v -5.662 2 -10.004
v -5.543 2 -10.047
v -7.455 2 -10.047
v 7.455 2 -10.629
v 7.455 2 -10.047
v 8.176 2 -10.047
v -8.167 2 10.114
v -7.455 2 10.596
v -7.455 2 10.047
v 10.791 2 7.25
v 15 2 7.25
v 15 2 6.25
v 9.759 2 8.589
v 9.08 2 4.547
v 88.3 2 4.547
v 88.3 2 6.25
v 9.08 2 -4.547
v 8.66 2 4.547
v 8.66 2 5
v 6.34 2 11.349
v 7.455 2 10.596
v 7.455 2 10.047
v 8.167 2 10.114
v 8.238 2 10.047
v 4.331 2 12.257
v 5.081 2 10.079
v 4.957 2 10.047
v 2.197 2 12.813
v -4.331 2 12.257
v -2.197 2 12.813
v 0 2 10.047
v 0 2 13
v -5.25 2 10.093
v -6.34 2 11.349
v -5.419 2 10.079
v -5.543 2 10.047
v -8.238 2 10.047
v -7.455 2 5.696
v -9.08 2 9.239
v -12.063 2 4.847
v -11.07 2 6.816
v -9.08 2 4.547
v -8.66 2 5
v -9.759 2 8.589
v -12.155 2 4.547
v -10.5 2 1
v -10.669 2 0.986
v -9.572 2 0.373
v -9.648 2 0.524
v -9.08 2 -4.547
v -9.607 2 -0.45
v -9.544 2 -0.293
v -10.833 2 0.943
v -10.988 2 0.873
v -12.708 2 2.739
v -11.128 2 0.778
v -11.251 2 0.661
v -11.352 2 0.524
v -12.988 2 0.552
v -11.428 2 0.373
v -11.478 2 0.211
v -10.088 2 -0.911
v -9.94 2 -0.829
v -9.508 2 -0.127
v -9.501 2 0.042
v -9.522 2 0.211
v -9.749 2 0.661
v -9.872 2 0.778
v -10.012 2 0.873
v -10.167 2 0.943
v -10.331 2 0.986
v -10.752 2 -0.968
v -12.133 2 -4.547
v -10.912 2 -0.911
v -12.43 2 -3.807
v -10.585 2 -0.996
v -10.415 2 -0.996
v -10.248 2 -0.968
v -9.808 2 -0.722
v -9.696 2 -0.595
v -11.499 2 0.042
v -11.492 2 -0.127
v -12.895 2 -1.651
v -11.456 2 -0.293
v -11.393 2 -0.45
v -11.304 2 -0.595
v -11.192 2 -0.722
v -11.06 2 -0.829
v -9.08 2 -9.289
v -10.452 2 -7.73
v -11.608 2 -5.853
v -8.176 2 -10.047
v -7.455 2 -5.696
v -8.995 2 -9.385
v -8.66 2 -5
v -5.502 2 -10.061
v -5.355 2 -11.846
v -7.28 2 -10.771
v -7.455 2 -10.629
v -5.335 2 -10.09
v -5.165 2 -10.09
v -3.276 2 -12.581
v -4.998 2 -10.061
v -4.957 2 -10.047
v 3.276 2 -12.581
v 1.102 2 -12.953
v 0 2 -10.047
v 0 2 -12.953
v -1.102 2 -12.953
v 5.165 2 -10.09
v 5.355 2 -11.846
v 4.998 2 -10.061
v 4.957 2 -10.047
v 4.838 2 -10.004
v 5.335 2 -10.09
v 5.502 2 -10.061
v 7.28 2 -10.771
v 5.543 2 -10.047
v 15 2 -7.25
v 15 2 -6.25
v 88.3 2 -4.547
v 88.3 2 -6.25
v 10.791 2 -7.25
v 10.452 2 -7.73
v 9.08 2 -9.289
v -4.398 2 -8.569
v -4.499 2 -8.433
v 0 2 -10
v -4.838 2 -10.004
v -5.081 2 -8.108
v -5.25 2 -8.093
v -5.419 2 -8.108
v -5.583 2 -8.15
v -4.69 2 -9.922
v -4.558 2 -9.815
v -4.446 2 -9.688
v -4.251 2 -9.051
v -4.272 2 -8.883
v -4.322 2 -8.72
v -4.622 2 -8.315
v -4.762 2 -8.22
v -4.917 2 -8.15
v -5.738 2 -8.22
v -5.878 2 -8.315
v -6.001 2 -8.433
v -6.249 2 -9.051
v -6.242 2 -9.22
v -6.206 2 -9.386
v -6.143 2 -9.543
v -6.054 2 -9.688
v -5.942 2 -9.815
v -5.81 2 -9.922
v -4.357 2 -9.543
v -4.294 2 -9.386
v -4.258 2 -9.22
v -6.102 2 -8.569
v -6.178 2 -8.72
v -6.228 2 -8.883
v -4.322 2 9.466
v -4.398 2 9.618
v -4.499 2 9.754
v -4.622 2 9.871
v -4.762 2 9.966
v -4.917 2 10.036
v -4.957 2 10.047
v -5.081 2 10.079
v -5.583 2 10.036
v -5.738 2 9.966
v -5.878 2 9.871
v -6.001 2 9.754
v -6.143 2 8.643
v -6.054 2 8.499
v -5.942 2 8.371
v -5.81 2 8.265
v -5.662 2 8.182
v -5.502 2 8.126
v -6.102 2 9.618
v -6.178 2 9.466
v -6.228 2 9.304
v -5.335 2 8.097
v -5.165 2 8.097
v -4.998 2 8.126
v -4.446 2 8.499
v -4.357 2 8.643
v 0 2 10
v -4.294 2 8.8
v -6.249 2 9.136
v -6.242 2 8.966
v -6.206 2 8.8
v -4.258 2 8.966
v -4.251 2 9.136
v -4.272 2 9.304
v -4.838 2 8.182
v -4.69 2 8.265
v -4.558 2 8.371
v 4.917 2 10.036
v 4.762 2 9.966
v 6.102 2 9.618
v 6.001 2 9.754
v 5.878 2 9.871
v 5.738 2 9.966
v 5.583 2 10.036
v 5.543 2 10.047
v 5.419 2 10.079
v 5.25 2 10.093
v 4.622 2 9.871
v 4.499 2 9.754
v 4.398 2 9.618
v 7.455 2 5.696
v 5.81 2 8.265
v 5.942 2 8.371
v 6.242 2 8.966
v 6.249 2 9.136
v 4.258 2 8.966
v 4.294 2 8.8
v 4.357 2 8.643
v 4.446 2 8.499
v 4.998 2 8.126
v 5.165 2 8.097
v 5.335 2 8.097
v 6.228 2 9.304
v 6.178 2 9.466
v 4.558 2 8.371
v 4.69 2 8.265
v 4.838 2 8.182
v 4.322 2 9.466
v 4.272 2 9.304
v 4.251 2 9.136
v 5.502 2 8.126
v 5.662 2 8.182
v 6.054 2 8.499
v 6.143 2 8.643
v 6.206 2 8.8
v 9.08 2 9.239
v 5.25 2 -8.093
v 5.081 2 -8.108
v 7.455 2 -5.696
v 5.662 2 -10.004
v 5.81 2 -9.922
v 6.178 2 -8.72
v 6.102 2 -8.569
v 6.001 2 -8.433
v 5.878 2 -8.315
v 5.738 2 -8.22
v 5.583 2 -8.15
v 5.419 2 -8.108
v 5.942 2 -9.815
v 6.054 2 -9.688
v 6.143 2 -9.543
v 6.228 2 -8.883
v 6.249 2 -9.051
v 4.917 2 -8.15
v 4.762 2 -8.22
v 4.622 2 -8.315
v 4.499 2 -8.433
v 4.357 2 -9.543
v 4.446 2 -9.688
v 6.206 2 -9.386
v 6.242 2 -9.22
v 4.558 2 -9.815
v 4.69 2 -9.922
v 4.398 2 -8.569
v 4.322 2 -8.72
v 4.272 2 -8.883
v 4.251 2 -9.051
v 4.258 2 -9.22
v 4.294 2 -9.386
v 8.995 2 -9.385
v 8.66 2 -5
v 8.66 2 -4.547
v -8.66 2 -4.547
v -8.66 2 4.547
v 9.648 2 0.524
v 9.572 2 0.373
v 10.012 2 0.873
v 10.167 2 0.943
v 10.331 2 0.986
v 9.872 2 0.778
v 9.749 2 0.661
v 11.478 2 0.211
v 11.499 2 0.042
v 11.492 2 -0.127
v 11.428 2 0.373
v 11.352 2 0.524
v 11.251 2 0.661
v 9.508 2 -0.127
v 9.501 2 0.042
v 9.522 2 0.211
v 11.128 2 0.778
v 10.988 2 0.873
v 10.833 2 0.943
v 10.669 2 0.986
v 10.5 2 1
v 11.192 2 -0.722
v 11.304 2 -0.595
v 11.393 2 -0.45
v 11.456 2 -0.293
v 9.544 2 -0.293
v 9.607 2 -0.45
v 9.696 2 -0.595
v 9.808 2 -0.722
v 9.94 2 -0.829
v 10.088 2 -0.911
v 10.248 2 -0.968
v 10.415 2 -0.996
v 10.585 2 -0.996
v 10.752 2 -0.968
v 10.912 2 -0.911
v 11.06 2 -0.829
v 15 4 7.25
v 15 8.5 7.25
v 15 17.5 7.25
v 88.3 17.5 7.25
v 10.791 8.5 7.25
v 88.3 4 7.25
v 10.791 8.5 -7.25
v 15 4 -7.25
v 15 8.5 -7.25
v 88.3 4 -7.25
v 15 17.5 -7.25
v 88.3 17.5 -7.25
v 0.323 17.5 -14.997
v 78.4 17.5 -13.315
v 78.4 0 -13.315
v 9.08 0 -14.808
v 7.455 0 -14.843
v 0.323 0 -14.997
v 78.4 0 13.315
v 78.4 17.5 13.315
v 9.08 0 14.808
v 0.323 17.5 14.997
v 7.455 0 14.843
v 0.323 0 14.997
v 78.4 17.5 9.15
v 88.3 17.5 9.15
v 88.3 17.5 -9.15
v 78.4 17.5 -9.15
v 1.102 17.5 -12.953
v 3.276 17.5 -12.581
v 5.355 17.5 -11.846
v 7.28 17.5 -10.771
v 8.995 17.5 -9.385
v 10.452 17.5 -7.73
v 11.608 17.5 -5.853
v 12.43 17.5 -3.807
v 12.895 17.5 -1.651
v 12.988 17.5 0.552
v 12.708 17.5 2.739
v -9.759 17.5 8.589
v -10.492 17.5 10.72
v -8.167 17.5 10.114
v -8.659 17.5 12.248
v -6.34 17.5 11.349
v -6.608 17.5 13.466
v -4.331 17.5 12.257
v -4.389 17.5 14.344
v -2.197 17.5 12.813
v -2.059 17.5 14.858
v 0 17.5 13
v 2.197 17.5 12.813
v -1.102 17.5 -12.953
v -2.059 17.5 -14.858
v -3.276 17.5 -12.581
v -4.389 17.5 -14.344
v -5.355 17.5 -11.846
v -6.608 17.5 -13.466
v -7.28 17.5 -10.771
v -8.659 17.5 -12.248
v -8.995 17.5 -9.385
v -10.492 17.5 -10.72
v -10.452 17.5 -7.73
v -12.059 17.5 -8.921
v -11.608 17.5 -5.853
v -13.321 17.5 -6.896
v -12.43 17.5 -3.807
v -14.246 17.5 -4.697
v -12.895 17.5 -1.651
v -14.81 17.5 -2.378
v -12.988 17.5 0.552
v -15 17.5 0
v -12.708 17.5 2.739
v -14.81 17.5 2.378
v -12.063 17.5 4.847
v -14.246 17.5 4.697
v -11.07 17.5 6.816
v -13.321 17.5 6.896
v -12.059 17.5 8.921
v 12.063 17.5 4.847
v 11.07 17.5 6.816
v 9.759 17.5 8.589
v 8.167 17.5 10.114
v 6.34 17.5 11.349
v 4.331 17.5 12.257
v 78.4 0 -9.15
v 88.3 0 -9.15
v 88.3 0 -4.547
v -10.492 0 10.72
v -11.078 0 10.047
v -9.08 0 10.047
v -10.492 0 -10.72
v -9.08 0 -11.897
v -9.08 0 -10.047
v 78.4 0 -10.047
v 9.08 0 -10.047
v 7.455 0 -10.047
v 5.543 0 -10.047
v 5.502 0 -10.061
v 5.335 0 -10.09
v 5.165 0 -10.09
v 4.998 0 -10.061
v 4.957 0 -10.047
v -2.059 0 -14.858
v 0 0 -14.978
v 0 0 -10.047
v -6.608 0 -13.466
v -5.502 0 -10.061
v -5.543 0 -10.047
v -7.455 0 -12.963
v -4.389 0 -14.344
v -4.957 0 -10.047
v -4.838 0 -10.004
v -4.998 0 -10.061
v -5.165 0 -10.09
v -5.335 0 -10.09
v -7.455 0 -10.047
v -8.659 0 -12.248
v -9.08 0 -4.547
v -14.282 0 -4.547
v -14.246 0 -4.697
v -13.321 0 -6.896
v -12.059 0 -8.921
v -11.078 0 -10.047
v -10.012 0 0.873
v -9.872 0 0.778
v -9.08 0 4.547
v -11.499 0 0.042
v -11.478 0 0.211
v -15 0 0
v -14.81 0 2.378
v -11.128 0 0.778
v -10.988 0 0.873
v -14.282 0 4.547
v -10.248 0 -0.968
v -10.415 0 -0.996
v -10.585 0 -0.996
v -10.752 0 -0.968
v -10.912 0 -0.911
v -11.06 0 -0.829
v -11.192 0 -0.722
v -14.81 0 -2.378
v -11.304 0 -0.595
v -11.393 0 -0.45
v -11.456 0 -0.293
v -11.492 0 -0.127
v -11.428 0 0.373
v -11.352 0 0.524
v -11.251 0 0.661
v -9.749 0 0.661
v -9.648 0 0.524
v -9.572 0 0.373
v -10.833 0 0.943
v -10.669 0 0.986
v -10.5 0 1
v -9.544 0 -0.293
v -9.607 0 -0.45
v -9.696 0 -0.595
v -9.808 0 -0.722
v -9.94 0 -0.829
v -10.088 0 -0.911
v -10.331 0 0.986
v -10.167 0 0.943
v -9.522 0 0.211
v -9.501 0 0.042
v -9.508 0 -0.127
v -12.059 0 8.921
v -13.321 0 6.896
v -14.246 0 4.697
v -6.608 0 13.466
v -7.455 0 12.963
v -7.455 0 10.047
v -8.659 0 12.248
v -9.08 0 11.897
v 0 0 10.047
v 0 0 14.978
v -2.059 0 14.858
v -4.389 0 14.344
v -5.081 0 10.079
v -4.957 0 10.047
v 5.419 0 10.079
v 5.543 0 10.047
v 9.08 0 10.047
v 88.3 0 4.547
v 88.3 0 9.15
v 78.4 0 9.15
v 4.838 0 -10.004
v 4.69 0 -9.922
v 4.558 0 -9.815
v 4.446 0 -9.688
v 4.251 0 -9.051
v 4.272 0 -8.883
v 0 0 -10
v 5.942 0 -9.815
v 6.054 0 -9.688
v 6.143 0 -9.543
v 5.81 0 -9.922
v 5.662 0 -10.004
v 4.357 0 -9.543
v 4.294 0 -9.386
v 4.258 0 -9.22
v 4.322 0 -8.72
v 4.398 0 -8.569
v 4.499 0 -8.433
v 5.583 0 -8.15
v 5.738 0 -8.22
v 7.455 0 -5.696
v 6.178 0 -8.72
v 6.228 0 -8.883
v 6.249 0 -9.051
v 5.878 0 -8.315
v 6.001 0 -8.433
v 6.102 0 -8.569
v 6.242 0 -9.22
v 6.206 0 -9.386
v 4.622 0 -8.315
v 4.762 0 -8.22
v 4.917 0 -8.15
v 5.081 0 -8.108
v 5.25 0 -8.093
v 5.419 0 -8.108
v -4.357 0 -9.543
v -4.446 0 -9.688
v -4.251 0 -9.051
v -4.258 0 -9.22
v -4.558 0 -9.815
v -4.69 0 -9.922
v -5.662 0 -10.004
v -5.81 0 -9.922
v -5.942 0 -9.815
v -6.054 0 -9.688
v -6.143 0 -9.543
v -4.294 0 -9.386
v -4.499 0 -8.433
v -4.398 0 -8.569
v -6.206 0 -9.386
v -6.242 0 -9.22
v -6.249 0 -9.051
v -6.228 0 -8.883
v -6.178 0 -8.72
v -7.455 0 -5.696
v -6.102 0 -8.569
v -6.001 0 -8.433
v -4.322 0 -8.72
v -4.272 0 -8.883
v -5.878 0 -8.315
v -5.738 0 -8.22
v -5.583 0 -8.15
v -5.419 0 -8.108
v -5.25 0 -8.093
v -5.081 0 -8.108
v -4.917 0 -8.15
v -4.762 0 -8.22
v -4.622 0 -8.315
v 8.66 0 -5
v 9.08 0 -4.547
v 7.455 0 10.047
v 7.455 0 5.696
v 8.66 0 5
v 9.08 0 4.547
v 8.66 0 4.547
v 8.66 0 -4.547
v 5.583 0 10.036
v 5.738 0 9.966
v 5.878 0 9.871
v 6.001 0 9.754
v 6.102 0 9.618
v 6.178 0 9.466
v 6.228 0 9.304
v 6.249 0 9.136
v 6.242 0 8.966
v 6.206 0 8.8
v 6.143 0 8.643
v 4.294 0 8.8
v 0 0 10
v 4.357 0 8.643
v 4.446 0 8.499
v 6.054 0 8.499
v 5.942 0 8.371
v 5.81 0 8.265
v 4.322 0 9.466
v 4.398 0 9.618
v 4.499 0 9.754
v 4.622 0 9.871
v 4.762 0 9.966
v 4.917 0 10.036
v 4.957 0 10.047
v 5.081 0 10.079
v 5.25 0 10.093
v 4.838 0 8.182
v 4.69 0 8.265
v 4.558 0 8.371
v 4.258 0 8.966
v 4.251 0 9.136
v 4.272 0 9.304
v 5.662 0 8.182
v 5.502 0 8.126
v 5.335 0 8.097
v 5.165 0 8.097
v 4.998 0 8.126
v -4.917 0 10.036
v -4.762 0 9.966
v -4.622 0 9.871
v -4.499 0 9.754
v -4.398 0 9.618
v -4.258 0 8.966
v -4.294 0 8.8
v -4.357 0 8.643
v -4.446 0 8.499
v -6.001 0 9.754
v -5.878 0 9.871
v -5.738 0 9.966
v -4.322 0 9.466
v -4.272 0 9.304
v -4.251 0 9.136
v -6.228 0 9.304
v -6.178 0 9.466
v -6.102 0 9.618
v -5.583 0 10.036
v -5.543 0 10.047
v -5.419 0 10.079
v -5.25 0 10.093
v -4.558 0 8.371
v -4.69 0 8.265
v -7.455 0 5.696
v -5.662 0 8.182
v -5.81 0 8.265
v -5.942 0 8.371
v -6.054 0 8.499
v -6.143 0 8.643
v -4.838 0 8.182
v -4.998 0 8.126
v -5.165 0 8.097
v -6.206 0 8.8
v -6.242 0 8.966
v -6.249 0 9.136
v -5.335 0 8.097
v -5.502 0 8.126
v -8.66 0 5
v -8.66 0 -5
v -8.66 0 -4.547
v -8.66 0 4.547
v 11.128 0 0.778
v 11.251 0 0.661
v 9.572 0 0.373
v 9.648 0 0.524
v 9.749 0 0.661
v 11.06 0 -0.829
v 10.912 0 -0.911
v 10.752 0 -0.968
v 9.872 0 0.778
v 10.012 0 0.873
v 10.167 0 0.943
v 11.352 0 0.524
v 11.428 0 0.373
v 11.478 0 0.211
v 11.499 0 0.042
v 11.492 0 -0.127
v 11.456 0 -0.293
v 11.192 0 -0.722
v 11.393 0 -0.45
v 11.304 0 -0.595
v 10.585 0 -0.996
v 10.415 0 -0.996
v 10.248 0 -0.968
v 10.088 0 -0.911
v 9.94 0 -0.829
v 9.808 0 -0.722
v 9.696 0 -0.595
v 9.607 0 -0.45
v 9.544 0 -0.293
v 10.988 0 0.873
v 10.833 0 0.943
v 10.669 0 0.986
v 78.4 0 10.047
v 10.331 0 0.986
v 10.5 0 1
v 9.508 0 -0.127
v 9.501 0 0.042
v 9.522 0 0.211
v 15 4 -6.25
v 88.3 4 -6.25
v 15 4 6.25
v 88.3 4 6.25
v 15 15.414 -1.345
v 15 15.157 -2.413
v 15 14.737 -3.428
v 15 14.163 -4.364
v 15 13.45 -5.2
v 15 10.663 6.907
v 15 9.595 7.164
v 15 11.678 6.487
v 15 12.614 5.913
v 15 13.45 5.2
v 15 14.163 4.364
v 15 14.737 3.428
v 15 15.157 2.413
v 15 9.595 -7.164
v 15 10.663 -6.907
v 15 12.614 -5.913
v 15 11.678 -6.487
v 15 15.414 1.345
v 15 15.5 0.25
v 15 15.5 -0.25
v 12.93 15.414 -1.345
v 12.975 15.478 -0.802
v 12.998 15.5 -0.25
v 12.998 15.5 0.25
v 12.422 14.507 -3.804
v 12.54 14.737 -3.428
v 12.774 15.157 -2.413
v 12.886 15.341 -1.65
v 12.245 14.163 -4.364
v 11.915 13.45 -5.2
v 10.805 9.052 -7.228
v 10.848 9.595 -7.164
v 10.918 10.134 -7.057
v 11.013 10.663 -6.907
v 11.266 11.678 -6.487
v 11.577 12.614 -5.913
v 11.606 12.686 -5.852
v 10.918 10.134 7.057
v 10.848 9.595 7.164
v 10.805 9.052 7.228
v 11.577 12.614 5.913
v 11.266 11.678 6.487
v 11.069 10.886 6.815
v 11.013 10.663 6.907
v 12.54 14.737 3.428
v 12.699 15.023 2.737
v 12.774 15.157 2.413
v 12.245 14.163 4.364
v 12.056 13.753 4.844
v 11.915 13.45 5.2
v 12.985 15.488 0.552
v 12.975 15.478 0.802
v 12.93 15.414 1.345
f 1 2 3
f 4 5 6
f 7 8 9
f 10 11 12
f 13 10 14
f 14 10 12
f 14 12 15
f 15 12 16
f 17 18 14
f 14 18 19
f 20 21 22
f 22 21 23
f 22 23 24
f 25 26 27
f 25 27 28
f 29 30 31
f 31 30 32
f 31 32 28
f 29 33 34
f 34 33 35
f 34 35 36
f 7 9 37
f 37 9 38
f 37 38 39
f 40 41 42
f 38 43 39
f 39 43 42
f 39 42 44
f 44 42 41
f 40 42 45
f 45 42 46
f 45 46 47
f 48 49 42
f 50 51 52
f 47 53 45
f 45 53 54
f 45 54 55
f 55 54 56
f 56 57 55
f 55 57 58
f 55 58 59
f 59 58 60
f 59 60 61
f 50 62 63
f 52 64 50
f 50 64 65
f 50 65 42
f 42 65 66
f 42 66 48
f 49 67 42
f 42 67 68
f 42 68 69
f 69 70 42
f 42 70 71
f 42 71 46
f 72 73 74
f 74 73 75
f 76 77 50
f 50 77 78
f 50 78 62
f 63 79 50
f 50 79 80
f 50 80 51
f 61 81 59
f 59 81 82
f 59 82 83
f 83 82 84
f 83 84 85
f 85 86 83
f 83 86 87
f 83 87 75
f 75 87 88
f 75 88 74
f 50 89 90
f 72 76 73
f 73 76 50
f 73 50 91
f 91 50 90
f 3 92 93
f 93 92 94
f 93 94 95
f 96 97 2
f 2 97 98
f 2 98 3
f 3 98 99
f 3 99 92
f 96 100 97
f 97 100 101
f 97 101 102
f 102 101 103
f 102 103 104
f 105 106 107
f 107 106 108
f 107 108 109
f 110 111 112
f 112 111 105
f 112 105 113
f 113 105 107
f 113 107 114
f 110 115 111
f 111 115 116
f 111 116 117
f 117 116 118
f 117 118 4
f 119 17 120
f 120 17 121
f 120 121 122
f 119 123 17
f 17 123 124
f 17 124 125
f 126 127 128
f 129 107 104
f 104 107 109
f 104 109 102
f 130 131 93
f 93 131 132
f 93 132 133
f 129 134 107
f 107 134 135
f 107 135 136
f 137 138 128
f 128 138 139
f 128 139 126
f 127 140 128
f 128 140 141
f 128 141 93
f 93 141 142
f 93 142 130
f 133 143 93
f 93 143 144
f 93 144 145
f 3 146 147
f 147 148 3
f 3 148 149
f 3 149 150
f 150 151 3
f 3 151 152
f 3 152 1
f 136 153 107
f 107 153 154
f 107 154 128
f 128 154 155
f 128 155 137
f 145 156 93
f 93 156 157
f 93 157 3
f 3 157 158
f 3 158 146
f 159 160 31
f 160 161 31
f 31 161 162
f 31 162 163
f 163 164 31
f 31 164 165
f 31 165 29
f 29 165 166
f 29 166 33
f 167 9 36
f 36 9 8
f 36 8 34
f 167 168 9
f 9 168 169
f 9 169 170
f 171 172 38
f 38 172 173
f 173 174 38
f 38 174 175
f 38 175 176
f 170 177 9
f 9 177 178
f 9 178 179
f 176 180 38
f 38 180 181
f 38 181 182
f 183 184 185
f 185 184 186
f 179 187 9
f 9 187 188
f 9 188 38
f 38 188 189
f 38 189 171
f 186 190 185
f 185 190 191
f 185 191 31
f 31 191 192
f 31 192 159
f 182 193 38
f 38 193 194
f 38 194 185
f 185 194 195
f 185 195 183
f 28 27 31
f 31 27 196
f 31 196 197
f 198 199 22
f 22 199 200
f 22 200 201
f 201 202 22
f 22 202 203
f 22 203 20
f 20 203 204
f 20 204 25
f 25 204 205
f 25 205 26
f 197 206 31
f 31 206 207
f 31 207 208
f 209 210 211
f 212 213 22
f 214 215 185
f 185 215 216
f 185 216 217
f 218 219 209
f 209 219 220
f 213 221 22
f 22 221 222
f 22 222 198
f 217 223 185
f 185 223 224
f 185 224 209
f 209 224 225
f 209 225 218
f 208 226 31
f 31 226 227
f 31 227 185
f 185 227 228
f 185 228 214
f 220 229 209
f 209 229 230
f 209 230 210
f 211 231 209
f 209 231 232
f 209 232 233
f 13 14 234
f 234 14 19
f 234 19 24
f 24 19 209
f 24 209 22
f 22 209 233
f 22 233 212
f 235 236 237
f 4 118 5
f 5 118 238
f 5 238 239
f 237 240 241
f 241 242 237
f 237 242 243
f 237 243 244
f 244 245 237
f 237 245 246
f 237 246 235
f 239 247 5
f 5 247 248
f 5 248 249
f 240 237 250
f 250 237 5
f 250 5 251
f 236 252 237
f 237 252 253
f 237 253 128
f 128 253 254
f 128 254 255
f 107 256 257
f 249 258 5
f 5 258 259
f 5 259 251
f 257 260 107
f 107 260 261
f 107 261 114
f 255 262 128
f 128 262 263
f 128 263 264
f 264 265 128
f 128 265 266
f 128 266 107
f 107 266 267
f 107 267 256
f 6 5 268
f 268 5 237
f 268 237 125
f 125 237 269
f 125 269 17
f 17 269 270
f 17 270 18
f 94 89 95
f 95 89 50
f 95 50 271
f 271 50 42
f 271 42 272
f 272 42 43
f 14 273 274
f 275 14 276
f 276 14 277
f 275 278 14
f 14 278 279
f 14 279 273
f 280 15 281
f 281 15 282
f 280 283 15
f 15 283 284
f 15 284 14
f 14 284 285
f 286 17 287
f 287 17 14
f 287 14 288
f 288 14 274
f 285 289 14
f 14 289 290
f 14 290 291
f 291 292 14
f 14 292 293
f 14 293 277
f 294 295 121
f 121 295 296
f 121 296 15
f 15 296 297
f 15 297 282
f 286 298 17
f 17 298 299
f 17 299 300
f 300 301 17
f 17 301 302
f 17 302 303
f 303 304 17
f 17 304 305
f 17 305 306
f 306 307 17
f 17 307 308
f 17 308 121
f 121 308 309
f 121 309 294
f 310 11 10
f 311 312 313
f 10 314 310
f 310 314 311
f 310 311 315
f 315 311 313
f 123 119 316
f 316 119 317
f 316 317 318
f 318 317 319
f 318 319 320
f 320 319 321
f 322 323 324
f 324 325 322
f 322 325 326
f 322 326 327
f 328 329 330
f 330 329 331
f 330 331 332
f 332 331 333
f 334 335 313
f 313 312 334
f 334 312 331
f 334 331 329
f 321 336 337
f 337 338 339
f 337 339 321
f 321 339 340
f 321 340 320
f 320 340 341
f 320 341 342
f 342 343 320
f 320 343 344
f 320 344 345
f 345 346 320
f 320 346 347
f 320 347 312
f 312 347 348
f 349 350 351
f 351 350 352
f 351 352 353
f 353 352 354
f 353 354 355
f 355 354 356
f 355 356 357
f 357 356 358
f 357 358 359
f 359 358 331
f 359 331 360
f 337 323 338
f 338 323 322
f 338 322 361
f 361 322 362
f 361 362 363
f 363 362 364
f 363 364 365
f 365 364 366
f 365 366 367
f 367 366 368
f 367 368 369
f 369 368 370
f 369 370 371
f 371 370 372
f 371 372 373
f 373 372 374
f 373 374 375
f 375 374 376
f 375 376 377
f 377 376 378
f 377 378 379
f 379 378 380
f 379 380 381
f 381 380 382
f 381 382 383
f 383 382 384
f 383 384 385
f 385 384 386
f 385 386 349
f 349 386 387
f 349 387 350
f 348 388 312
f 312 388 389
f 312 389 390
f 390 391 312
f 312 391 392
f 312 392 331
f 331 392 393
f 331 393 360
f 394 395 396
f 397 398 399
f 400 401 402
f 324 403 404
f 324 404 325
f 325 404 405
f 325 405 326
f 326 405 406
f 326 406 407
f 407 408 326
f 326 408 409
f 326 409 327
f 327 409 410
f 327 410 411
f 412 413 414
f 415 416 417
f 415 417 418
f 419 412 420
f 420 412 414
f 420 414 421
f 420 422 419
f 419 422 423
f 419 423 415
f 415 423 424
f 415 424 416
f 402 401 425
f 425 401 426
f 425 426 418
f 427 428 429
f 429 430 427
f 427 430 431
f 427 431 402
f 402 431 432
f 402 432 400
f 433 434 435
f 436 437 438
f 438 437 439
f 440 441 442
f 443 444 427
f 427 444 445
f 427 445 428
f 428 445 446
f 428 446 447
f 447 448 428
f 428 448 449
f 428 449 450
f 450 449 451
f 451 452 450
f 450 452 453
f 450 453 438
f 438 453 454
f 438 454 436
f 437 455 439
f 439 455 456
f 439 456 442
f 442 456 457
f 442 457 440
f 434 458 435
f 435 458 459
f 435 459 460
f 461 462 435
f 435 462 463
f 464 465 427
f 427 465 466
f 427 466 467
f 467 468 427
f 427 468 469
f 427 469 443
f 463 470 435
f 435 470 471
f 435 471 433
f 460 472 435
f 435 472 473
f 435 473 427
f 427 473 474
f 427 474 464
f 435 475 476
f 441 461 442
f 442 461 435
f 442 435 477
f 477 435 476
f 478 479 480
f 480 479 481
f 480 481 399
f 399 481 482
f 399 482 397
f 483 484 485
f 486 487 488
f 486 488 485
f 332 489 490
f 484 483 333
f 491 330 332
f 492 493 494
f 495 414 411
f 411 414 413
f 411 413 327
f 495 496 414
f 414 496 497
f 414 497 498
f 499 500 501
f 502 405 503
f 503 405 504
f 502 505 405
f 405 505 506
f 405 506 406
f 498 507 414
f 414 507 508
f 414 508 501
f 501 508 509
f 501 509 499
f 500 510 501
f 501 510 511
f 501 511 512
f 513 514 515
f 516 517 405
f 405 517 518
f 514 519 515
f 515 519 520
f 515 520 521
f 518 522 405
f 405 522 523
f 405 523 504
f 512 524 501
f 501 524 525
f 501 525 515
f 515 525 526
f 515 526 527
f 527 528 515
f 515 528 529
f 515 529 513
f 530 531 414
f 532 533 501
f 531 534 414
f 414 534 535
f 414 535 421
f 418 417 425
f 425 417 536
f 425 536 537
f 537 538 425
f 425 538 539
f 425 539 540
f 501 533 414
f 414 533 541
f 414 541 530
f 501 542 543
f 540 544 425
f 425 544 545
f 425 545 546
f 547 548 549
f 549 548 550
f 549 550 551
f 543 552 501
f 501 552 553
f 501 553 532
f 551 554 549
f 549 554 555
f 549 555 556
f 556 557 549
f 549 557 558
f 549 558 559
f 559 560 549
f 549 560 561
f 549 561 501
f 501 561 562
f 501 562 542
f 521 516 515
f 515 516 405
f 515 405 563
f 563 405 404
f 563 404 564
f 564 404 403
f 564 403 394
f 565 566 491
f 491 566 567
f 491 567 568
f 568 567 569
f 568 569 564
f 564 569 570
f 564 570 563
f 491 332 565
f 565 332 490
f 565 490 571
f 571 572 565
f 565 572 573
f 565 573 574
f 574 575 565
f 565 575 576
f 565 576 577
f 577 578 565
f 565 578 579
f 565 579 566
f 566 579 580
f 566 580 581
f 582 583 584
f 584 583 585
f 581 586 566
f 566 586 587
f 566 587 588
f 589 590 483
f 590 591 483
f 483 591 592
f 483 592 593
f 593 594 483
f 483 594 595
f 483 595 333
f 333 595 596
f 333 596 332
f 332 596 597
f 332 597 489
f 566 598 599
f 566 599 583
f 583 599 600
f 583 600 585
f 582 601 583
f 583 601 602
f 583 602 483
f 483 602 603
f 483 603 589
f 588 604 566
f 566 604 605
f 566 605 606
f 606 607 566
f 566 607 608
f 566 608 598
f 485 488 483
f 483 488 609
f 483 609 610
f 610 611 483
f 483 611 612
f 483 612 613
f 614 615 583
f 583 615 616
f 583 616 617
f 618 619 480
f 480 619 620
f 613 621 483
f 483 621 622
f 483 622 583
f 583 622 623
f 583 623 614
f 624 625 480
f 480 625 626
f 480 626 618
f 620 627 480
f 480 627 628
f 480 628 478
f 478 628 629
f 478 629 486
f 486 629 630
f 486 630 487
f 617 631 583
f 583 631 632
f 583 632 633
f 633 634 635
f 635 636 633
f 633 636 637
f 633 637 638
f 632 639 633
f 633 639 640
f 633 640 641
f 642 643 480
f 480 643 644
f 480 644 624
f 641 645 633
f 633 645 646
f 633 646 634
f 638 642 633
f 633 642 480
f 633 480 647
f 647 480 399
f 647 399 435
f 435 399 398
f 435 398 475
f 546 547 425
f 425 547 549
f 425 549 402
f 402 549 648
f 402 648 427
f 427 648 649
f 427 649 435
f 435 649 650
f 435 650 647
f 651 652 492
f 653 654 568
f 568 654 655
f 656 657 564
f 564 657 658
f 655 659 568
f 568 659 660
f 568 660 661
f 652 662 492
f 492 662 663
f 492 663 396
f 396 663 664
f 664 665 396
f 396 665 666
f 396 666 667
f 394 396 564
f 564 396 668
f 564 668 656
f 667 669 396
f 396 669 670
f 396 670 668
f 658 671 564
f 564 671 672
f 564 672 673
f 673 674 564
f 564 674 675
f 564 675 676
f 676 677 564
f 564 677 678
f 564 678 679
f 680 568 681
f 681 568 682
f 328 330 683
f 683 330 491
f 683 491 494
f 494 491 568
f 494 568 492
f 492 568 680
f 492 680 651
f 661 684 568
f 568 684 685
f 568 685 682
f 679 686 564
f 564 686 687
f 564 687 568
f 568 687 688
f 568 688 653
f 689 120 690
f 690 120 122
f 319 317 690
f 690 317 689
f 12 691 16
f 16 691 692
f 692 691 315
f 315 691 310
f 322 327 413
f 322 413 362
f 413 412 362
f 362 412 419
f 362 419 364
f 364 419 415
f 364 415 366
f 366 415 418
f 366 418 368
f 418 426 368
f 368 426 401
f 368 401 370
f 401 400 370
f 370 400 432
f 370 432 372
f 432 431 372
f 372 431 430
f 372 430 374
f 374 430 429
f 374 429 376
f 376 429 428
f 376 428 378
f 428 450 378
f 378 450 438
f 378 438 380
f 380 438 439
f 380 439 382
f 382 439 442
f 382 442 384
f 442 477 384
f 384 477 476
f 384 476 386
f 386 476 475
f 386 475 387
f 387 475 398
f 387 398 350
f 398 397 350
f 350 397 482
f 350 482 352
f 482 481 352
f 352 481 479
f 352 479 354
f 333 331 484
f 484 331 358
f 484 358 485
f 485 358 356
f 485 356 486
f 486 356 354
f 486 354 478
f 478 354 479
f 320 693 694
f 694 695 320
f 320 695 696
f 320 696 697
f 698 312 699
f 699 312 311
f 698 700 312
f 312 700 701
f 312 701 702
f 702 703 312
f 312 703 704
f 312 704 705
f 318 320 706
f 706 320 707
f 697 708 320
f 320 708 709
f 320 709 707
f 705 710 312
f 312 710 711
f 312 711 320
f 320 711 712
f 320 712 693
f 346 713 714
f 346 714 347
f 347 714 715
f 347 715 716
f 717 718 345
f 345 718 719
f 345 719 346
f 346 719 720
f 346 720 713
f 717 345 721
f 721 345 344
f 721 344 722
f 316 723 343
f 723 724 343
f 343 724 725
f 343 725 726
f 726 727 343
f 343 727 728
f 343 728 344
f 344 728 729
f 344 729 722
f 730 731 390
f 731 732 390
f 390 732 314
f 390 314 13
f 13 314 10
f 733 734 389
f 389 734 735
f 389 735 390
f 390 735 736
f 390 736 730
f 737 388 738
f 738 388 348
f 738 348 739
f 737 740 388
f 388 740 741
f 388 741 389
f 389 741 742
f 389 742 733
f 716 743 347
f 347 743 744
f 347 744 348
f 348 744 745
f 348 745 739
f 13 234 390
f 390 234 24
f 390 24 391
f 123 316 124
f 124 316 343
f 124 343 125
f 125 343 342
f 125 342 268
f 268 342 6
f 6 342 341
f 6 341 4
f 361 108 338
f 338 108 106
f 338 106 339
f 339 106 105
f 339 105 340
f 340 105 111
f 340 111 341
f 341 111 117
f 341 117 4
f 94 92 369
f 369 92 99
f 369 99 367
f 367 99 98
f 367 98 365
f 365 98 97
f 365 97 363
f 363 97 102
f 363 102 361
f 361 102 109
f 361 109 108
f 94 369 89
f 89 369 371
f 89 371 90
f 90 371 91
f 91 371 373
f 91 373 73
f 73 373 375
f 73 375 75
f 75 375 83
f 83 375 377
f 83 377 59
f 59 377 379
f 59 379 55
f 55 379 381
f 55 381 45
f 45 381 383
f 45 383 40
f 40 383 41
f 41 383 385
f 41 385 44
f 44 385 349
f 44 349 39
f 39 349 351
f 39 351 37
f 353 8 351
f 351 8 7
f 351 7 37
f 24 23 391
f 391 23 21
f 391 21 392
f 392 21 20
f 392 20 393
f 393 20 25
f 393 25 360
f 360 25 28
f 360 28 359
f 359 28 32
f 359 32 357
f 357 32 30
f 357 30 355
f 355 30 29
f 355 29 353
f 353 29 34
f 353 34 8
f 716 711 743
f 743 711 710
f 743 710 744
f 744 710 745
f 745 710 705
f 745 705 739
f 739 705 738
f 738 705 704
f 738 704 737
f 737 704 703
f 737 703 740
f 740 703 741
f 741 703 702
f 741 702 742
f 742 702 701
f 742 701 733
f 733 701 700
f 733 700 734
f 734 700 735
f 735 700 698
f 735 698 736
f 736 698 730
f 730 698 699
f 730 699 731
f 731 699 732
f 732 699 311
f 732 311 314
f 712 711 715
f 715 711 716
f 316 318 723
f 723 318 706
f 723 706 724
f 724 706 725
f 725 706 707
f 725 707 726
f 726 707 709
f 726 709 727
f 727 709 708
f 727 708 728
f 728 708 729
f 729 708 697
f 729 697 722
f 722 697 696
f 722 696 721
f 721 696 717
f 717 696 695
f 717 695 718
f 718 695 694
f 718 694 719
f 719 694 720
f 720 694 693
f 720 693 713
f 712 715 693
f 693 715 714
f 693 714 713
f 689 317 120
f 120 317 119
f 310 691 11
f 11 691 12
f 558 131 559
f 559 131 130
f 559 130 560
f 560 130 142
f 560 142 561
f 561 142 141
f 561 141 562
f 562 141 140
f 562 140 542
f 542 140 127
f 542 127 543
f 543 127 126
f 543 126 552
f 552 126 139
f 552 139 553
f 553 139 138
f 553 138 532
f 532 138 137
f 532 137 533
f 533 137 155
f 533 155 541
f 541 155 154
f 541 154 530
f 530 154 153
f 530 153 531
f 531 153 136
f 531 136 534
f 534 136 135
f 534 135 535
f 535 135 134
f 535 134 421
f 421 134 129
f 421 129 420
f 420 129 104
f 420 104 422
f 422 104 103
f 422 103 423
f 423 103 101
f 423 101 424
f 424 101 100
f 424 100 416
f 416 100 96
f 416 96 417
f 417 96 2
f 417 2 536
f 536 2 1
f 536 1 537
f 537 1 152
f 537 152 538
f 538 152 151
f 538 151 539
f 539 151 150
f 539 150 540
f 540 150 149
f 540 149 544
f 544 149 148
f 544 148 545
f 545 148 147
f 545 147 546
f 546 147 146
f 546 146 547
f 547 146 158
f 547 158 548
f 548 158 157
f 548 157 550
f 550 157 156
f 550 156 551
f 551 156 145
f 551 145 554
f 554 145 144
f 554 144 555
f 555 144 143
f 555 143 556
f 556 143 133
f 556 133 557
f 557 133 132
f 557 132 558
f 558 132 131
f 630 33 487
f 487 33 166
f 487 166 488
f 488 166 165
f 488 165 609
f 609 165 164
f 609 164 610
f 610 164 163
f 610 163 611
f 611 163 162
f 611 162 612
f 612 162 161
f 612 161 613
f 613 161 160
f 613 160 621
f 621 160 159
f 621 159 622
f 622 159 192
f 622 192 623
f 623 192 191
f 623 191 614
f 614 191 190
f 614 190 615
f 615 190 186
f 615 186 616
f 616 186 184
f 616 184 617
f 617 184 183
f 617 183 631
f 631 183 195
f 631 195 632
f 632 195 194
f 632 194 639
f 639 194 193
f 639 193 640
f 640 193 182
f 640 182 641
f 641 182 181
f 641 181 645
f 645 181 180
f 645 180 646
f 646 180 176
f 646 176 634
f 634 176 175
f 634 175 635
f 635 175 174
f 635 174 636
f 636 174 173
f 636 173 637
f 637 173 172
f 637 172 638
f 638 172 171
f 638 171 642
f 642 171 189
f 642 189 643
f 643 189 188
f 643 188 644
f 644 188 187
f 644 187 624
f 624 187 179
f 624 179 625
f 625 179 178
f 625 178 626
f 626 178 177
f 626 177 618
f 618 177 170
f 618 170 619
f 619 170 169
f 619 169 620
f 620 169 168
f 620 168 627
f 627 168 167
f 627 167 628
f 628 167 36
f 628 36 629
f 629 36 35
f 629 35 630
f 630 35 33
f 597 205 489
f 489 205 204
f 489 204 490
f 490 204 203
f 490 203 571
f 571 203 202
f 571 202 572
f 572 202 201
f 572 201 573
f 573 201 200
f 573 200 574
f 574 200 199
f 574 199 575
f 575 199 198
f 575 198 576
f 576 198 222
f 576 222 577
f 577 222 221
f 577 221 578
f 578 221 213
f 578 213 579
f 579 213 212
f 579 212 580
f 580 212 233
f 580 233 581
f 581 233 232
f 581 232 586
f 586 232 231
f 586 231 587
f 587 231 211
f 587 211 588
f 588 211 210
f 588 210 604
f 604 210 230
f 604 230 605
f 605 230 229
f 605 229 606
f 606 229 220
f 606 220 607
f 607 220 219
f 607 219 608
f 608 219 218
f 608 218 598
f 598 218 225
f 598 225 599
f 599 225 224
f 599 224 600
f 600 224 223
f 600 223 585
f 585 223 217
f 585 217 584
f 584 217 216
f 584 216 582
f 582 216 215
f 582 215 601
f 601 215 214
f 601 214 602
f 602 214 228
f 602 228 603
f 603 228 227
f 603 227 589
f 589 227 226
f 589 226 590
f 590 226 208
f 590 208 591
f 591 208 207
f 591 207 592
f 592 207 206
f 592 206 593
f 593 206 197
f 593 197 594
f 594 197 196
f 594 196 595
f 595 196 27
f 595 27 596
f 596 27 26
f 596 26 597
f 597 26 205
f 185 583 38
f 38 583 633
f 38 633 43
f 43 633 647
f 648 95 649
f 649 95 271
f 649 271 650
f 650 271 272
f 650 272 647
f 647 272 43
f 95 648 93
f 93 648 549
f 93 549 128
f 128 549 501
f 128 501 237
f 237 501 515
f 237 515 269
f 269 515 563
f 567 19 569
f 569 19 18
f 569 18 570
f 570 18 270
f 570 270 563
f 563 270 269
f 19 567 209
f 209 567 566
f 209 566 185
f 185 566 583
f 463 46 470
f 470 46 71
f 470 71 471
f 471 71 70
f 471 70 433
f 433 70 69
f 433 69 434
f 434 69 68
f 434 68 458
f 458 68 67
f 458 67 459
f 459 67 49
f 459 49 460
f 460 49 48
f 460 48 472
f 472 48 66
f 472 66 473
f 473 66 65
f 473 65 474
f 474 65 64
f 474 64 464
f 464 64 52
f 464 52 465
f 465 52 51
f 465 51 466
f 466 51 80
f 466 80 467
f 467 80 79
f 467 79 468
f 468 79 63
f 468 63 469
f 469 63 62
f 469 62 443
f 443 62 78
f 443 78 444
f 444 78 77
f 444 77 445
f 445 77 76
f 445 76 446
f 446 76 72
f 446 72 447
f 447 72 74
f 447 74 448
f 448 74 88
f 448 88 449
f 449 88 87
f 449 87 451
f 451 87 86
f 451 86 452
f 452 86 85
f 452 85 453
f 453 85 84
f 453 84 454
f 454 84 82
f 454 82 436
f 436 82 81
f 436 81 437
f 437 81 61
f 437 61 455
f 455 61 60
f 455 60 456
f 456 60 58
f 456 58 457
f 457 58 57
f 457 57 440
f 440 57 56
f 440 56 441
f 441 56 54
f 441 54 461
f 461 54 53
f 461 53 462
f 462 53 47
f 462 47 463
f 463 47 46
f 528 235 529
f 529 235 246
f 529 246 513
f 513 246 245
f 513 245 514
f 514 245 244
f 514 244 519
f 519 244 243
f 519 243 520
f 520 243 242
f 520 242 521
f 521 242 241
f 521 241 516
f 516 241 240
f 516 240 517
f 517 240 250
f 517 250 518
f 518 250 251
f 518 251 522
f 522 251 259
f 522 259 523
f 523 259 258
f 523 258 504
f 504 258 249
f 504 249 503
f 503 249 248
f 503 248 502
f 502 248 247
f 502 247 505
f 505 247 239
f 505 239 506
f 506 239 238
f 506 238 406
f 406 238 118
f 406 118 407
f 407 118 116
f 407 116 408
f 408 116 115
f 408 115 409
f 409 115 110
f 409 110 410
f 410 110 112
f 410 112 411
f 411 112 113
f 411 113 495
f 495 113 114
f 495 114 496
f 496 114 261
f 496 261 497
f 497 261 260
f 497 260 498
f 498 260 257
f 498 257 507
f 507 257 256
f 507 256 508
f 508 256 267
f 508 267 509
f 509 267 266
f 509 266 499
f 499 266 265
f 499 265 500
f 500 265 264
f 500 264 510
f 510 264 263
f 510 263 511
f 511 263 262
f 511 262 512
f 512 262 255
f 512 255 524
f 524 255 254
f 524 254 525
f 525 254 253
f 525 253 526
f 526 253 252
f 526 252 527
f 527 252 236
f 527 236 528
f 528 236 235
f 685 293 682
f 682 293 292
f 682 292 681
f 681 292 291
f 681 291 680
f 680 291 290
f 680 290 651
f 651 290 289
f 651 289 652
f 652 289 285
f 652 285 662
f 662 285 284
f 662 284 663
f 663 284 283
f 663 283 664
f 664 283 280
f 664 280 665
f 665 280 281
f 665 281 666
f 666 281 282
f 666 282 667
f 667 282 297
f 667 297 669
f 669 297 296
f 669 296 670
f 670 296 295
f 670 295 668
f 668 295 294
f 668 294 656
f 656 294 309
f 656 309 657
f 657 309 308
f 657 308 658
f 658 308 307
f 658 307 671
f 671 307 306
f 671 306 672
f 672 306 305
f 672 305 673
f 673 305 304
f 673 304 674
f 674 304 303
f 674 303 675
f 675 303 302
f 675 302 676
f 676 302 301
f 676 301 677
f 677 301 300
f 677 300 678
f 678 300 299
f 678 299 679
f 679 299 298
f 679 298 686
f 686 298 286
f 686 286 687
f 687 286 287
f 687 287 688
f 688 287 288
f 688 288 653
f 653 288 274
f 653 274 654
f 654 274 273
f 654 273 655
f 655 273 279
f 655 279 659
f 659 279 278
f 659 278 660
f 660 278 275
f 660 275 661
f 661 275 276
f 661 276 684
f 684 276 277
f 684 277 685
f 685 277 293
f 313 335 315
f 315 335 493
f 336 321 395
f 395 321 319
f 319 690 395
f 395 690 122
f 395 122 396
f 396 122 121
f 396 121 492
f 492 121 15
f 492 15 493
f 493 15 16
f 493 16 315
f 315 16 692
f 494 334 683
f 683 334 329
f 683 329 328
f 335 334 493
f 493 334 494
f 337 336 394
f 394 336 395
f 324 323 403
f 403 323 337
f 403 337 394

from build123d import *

# Parameters (mm, degrees)
BOSS_EXTRUDE1_DEPTH     = 17.5
SKETCH2_W               = 252
SKETCH2_H               = 14.5
CUT_EXTRUDE1_DEPTH      = 15.5
SKETCH3_R               = 13
CUT_EXTRUDE2_DEPTH      = 15.5
CUT_EXTRUDE3_REACH      = 264.265
CUT_EXTRUDE3_END_RADIUS = 13
SKETCH5_W               = 252
SKETCH5_H               = 1
BOSS_EXTRUDE2_DEPTH     = 2
SKETCH6_R               = 1
CUT_EXTRUDE4_DEPTH      = 2
CUT_EXTRUDE9_DEPTH      = 278.209870862


with BuildPart() as part:
    # Sketch1 → Boss-Extrude1 (new body)
    with BuildSketch(Plane(origin=(0, 0, 0), x_dir=(1, 0, 0), z_dir=(0, 1, 0))):
        with BuildLine():
            Line((0.323033708, 14.996521237), (267.19920412, 9.247854763))
            ThreePointArc((267.19920412, 9.247854763), (276.25, 0), (267.19920412, -9.247854763))
            Line((267.19920412, -9.247854763), (0.323033708, -14.996521237))
            ThreePointArc((0.323033708, -14.996521237), (-15, 0), (0.323033708, 14.996521237))
        make_face()
    extrude(amount=BOSS_EXTRUDE1_DEPTH)

    # Sketch2 → Cut-Extrude1 (cut)
    with BuildSketch(Plane(origin=(0, 17.5, 0), x_dir=(1, 0, 0), z_dir=(0, 1, 0))):
        with Locations((141, 0)):
            Rectangle(SKETCH2_W, SKETCH2_H)
    extrude(amount=-CUT_EXTRUDE1_DEPTH, mode=Mode.SUBTRACT)

    # Sketch3 → Cut-Extrude2 (cut)
    with BuildSketch(Plane(origin=(0, 17.5, 0), x_dir=(1, 0, 0), z_dir=(0, 1, 0))):
        with Locations(Location((0, 0, 0), (0, 0, 270))):
            Circle(SKETCH3_R)
    extrude(amount=-CUT_EXTRUDE2_DEPTH, mode=Mode.SUBTRACT)

    # Cut-Extrude3: up to this cylinder (the profile starts outside it)
    cut_extrude3_end = Plane(origin=(0, 8.125709, 0), z_dir=(0, 1, 0)) * Cylinder(CUT_EXTRUDE3_END_RADIUS, 555.53, mode=Mode.PRIVATE)
    # Sketch4 → Cut-Extrude3 (cut, up to the surface)
    with BuildSketch(Plane(origin=(15, 0, 0), x_dir=(0, 0, -1), z_dir=(1, 0, 0)), mode=Mode.PRIVATE) as cut_extrude3_sk1:
        with BuildLine():
            Line((-7.25, 2), (7.25, 2))
            Line((7.25, 2), (7.25, 8.5))
            ThreePointArc((7.25, 8.5), (5.199747468, 13.449747468), (0.25, 15.5))
            Line((0.25, 15.5), (-0.25, 15.5))
            ThreePointArc((-0.25, 15.5), (-5.199747468, 13.449747468), (-7.25, 8.5))
            Line((-7.25, 8.5), (-7.25, 2))
        make_face()
    cut_extrude3_tool1 = extrude(cut_extrude3_sk1.sketch, amount=-CUT_EXTRUDE3_REACH, mode=Mode.PRIVATE) - cut_extrude3_end
    add(cut_extrude3_tool1.solids().sort_by_distance((15, 8.125709, 0))[0], mode=Mode.SUBTRACT)

    # Sketch5 → Boss-Extrude2 (add)
    with BuildSketch(Plane(origin=(0, 2, 0), x_dir=(1, 0, 0), z_dir=(0, 1, 0))):
        with Locations((141, 6.75)):
            Rectangle(SKETCH5_W, SKETCH5_H)
        with Locations((141, -6.75)):
            Rectangle(SKETCH5_W, SKETCH5_H)
    extrude(amount=BOSS_EXTRUDE2_DEPTH)

    # Sketch6 → Cut-Extrude4 (cut)
    with BuildSketch(Plane(origin=(0, 2, 0), x_dir=(1, 0, 0), z_dir=(0, 1, 0))):
        with Locations(Location((-5.25, 9.09326674, 0), (0, 0, 270))):
            Circle(SKETCH6_R)
        with Locations(Location((-10.5, 0, 0), (0, 0, 270))):
            Circle(SKETCH6_R)
        with Locations(Location((5.25, 9.09326674, 0), (0, 0, 270))):
            Circle(SKETCH6_R)
        with Locations(Location((10.5, 0, 0), (0, 0, 270))):
            Circle(SKETCH6_R)
        with Locations(Location((5.25, -9.09326674, 0), (0, 0, 270))):
            Circle(SKETCH6_R)
        with Locations(Location((-5.25, -9.09326674, 0), (0, 0, 270))):
            Circle(SKETCH6_R)
        Polygon((0, -10), (8.660254038, -5), (8.660254038, 5), (0, 10), (-8.660254038, 5), (-8.660254038, -5), align=None)
    extrude(amount=-CUT_EXTRUDE4_DEPTH, mode=Mode.SUBTRACT)

    # Sketch14 → Cut-Extrude9 (cut, through all)
    with BuildSketch(Plane(origin=(0, 0, 0), x_dir=(1, 0, 0), z_dir=(0, 1, 0))):
        Polygon((88.5, 9.35), (78.6, 9.35), (78.6, 35), (78.4, 35), (78.4, 9.15), (88.3, 9.15), (88.3, -9.15), (78.4, -9.15), (78.4, -35), (78.6, -35), (78.6, -9.35), (88.5, -9.35), align=None)
        Polygon((172.7, 9.15), (182.6, 9.15), (182.6, 35), (182.4, 35), (182.4, 9.35), (172.5, 9.35), (172.5, 9.25), (172.5, -9.35), (182.4, -9.35), (182.4, -35), (182.6, -35), (182.6, -9.15), (172.7, -9.15), align=None)
    extrude(amount=CUT_EXTRUDE9_DEPTH, mode=Mode.SUBTRACT)


with BuildPart() as cut_extrude9_kept_piece:
    # of the separate pieces the step leaves, the one the design keeps (cut_extrude9_pieces_kept)
    add(part.part.solids().sort_by_distance((78.4, 0, 13.314698399))[0])


solid = cut_extrude9_kept_piece.part
